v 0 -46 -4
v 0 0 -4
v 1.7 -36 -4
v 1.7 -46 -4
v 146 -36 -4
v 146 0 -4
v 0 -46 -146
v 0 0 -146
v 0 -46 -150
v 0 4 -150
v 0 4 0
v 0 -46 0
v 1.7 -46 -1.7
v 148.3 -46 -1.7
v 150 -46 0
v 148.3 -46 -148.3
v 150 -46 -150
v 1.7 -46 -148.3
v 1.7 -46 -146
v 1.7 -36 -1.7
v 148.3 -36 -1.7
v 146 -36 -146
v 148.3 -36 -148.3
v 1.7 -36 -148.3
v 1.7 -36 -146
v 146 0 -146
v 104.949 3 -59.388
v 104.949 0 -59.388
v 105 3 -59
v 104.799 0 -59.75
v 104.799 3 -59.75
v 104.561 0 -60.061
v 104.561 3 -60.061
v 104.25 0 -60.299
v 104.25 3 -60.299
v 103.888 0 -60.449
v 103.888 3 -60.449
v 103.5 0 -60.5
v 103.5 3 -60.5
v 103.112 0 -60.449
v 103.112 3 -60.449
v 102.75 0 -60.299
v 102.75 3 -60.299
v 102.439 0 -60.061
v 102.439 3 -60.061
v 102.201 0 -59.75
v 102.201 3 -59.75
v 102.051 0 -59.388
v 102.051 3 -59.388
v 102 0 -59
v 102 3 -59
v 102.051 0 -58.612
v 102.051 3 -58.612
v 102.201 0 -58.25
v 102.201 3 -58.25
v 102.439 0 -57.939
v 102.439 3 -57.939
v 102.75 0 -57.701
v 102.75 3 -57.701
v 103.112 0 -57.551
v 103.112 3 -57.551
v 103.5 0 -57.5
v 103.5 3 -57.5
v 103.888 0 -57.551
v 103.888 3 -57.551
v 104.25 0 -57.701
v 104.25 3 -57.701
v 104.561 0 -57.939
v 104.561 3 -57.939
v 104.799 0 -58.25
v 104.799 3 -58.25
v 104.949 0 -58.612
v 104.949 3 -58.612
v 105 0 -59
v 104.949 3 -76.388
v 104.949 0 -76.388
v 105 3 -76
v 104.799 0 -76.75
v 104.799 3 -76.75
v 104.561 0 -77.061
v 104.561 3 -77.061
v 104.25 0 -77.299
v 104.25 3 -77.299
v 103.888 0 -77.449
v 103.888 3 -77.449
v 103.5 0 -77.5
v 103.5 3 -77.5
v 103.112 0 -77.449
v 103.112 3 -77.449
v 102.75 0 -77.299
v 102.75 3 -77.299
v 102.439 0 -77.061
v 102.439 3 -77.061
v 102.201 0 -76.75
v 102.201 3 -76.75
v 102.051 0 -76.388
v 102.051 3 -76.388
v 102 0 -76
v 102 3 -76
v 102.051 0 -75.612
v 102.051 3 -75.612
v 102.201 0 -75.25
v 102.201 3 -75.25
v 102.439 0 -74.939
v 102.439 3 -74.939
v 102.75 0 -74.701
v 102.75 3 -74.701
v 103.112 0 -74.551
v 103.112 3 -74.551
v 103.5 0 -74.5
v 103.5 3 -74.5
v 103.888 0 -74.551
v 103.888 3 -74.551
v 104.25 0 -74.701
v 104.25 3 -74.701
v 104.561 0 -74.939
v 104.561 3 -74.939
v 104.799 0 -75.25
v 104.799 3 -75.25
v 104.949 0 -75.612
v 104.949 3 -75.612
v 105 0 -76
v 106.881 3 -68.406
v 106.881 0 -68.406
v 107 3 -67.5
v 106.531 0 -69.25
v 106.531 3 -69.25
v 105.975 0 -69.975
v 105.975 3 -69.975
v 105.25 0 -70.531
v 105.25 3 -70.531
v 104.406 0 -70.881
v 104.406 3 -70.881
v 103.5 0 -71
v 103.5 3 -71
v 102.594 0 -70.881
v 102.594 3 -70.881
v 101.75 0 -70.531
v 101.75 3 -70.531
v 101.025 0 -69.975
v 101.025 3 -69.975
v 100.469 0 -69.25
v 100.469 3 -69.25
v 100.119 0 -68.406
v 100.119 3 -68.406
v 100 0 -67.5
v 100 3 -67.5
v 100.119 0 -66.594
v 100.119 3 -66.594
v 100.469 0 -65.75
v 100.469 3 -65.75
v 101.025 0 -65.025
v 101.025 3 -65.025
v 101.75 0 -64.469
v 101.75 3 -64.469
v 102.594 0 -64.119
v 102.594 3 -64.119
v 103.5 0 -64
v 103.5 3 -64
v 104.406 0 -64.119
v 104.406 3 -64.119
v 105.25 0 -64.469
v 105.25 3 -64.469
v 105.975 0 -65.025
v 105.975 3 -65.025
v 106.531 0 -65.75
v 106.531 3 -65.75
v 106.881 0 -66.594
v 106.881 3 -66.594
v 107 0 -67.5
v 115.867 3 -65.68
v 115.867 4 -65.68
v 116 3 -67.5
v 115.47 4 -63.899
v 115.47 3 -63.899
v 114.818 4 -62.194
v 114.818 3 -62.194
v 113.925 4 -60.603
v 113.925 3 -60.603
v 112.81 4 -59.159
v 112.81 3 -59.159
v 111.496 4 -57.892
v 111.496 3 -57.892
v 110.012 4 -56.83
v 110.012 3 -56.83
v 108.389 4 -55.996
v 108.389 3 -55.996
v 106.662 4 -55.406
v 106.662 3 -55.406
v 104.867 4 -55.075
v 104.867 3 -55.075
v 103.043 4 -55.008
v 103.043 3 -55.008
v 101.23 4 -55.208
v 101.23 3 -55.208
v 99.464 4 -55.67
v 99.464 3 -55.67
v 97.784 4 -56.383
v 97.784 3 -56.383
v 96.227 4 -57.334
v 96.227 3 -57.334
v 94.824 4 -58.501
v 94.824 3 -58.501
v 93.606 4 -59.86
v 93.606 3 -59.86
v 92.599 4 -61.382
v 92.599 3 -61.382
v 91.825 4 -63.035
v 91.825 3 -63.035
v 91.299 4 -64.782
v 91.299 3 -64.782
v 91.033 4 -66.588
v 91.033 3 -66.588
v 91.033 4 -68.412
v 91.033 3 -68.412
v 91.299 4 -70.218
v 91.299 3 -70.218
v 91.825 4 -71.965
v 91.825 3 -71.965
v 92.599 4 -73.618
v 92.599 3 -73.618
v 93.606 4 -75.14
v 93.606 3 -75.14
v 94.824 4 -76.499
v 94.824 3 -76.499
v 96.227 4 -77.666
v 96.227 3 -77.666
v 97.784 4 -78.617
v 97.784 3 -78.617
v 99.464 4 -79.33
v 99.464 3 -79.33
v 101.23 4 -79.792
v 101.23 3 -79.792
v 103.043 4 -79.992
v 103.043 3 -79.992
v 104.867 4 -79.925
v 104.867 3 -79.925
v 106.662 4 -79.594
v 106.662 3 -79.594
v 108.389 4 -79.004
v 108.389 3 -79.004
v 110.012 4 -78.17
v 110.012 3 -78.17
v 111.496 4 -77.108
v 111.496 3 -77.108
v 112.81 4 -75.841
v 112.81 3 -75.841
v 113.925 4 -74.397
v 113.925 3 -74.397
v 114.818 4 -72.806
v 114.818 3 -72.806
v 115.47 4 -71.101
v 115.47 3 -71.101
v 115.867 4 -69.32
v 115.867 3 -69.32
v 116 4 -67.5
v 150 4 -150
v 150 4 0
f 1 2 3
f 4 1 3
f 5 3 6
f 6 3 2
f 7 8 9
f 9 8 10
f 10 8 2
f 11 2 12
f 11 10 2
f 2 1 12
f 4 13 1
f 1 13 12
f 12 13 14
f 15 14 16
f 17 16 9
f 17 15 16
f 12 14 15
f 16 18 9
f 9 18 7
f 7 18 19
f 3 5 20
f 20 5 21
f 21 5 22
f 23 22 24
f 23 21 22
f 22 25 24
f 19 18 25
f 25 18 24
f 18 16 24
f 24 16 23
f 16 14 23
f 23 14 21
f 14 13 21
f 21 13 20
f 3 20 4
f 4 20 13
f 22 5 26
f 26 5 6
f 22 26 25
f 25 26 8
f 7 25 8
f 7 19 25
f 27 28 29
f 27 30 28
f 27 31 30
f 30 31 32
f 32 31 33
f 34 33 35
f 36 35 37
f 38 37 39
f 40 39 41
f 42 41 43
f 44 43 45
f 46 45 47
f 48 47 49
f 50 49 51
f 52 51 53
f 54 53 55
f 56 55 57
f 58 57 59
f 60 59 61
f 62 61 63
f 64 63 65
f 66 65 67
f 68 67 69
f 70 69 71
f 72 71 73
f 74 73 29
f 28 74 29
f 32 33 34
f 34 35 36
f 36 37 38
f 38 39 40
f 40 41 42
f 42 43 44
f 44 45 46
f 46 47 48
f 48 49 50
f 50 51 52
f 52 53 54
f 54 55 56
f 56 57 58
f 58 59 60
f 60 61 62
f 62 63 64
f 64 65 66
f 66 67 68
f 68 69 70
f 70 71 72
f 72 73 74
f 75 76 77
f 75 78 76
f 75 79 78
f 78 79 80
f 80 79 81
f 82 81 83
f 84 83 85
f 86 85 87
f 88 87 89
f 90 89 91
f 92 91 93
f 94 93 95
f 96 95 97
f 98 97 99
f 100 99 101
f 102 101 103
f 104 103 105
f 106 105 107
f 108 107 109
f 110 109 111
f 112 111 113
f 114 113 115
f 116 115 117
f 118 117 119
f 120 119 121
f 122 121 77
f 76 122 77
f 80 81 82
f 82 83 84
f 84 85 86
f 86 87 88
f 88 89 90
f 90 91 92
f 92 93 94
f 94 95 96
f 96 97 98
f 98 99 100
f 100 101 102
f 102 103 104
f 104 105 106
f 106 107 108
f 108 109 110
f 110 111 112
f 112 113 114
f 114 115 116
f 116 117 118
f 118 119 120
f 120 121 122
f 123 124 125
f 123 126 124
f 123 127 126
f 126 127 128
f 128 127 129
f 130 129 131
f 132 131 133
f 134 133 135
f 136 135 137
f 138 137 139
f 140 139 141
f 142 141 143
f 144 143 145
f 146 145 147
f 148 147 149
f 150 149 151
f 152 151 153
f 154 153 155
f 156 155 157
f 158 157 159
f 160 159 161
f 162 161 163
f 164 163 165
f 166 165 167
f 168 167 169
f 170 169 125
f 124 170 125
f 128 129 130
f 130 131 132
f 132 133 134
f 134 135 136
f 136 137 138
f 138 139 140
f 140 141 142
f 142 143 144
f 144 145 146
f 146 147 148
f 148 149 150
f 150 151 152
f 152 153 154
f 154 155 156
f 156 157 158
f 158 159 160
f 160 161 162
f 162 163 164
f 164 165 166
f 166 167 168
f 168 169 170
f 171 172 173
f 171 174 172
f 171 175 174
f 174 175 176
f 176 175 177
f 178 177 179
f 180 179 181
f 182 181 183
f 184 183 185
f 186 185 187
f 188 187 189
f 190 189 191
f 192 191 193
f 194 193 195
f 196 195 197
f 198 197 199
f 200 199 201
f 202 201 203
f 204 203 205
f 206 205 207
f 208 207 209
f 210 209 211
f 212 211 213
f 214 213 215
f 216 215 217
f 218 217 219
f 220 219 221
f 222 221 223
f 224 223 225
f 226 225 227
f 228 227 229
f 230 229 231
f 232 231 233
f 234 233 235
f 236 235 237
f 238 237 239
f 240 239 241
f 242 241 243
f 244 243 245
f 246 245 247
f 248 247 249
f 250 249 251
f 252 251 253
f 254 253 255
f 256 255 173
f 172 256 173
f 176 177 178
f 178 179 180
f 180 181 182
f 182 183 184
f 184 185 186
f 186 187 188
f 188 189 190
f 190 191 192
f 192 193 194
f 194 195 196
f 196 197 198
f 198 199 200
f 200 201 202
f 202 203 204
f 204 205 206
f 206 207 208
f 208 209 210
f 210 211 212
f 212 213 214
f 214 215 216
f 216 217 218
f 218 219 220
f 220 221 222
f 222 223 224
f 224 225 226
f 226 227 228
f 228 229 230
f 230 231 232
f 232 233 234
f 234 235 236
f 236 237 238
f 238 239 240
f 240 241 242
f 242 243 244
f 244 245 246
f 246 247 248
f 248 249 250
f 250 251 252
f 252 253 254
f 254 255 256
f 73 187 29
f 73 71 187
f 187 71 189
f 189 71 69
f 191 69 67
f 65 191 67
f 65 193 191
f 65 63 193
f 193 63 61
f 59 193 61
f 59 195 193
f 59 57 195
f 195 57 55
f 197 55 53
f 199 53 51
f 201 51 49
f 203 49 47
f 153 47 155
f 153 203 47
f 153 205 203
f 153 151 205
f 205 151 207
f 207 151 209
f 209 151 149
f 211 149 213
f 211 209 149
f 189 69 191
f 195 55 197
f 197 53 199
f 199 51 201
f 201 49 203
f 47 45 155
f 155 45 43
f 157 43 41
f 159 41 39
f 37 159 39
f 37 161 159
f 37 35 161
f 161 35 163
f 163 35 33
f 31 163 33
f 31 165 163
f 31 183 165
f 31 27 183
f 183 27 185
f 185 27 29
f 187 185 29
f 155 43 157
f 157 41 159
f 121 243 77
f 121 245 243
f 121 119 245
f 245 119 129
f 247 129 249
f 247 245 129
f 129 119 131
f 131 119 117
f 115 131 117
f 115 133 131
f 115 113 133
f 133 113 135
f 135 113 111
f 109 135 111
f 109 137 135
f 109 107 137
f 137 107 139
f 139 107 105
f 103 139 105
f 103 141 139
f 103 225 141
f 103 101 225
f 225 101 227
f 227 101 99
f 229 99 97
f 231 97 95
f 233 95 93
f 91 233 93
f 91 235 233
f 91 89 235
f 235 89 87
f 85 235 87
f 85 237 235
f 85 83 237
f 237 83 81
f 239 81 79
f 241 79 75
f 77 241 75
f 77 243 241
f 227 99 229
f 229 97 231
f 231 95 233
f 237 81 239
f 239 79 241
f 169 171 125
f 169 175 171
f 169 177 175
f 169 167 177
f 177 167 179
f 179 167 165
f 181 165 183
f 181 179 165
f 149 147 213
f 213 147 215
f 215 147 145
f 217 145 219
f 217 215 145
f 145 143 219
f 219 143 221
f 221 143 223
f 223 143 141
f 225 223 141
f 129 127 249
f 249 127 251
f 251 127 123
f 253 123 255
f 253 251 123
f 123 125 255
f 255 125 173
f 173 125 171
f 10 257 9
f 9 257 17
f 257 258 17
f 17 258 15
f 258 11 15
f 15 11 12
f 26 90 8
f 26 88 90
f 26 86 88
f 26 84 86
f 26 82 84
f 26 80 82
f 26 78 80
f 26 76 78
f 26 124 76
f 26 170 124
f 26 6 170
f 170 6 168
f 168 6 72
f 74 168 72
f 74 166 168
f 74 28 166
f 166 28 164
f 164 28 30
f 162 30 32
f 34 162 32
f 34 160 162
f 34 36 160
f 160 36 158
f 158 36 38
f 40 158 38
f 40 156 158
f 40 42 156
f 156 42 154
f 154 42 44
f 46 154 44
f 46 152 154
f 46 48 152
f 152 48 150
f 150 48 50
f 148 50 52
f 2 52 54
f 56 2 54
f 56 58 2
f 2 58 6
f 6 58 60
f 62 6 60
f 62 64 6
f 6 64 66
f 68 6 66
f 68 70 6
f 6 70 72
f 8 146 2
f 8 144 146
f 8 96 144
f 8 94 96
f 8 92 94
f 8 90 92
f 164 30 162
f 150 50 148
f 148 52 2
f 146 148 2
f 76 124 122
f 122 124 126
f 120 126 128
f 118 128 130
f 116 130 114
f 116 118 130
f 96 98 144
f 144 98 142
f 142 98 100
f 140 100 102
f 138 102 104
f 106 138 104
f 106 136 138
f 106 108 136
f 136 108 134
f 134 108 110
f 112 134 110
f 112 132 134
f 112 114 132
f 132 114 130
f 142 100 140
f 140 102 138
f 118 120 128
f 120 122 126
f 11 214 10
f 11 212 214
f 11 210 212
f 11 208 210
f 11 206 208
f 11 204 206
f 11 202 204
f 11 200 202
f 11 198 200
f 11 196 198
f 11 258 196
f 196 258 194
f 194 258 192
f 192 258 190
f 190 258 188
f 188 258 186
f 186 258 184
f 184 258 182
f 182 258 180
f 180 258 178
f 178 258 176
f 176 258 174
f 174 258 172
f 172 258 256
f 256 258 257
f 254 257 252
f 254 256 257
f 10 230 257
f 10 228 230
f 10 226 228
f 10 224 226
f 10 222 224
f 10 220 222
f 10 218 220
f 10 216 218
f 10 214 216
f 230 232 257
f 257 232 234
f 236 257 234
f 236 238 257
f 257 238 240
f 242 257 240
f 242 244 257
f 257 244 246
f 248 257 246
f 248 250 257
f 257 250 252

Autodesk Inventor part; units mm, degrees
ref_plane "YZ Plane" through (0, 0, 0) normal (1, 0, 0) x (0, 1, 0)
ref_plane "XZ Plane" through (0, 0, 0) normal (0, 1, 0) x (-1, 0, 0)
ref_plane "XY Plane" through (0, 0, 0) normal (0, 0, 1) x (1, 0, 0)
sketch "Boceto1" plane through (0, 0, 0) normal (0, 1, 0) x (-1, 0, 0)
  line L0 (0, 0) -> (0, -150)
  line L1 (0, -150) -> (-150, -150)
  line L2 (-150, -150) -> (-150, 0)
  line L3 (-150, 0) -> (0, 0)
extrude "Extrusión1" add sketch "Boceto1" along normal blind 4
sketch "Boceto2" plane through (0, 4, 0) normal (0, 1, 0) x (1, 0, 0)
  line L0 (0, 0) -> (150, 0) projected
  circle A0 centre (103.5, 67.5) radius 12.5
extrude "Extrusión2" cut sketch "Boceto2" against normal blind 1
sketch "Boceto3" plane through (0, 4, 0) normal (0, 1, 0) x (1, 0, 0)
  circle A0 centre (103.5, 67.5) radius 12.5 projected
  circle A1 centre (103.5, 76) radius 1.5
  circle A2 centre (103.5, 59) radius 1.5
  circle A3 centre (103.5, 67.5) radius 3.5
  point P0 (0, 0)
extrude "Extrusión3" cut sketch "Boceto3" against normal blind 4 contours A1 | A2 | A3
sketch "Boceto4" plane through (0, 0, 0) normal (0, -1, 0) x (1, 0, 0)
  point P0 (0, 0)
sketch "Boceto5" plane through (0, 0, 0) normal (0, -1, 0) x (1, 0, 0)
  line L0 (0, 0) -> (0, -4)
  line L1 (150, -4) -> (150, 0)
  line L2 (150, 0) -> (0, 0)
  line L3 (4, -4) -> (146, -4)
  line L4 (0, 0) -> (4, 0)
  line L5 (0, 0) -> (150, 0) projected
  line L6 (4, -4) -> (4, -146)
  line L7 (0, -150) -> (0, 0) projected
  line L8 (0, -4) -> (0, -150)
  line L9 (0, -150) -> (150, -150)
  line L10 (150, -150) -> (150, -4)
  line L11 (0, -150) -> (0, -146)
  line L12 (4, -146) -> (146, -146)
  line L13 (150, -150) -> (146, -150)
  line L14 (150, -150) -> (0, -150) projected
  line L15 (146, -146) -> (146, -4)
extrude "Extrusión4" add sketch "Boceto5" along normal blind 46
sketch "Boceto6" plane through (0, -46, 0) normal (0, -1, 0) x (1, 0, 0)
  line L0 (4, -4) -> (4, -146)
  line L1 (4, -146) -> (146, -146) projected
  line L2 (4, -146) -> (146, -146)
  line L3 (146, -146) -> (146, -4)
  line L4 (146, -4) -> (4, -4)
  line L5 (1.7, -4) -> (1.7, -148.3)
  line L6 (1.7, -148.3) -> (148.3, -148.3)
  line L7 (150, -150) -> (0, -150) projected
  line L8 (146, -1.7) -> (1.7, -1.7)
  line L9 (1.7, -4) -> (1.7, -1.7)
  line L10 (146, -1.7) -> (148.3, -1.7)
  line L11 (148.3, -1.7) -> (148.3, -148.3)
  point P0 (0, 0)
extrude "Extrusión5" cut sketch "Boceto6" against normal blind 10
sketch "Boceto7" plane through (0, -36, 0) normal (0, -1, 0) x (1, 0, 0)
  point P0 (0, 0)
sketch "Boceto8" plane through (4, 0, -4) normal (1, 0, 0) x (0, 0, -1)
  point P0 (-4, 0)
sketch "Boceto9" plane through (0, 4, -150) normal (-1, 0, 0) x (0, 0, 1)
  line L0 (150, -50) -> (146, -50)
  line L1 (150, -50) -> (150, 0)
  line L2 (150, 0) -> (0, 0)
  line L3 (150, -50) -> (0, -50) projected
  line L4 (0, 0) -> (0, -50)
  line L5 (0, -50) -> (4, -50)
  line L6 (0, 0) -> (0, -4)
  line L7 (4, 0) -> (146, 0)
  line L8 (150, 0) -> (146, 0)
  line L9 (0, 0) -> (150, 0) projected
  line L10 (146, 0) -> (146, -50)
  line L11 (0, 0) -> (4, 0)
  line L12 (4, 0) -> (4, -50)
  line L13 (4, -50) -> (146, -50)
  point P0 (150, -4)
extrude "Extrusión6" cut sketch "Boceto9" against normal blind 4 contours L3 L12 L2 L10
sketch "Boceto10" plane through (0, 4, 0) normal (0, 0, 1) x (1, 0, 0)
  point P0 (0, -4)
sketch "Boceto11" plane through (4, 4, -150) normal (-1, 0, 0) x (0, 0, 1)
  line L0 (146, -4) -> (4, -4) projected
  line L1 (146, -4) -> (146, -40) projected
  line L2 (4, -4) -> (146, -4)
  line L3 (146, 0) -> (150, 0) projected
  line L4 (146, -4) -> (146, 0)
  line L5 (146, 0) -> (4, 0)
  line L6 (4, 0) -> (4, -4)
  point P0 (150, -4)
extrude "Extrusión7" add sketch "Boceto11" along normal blind 4
sketch "Boceto12" plane through (0, 4, 0) normal (0, 0, 1) x (1, 0, 0)
  point P0 (0, -4)
properties part number "base sup"
